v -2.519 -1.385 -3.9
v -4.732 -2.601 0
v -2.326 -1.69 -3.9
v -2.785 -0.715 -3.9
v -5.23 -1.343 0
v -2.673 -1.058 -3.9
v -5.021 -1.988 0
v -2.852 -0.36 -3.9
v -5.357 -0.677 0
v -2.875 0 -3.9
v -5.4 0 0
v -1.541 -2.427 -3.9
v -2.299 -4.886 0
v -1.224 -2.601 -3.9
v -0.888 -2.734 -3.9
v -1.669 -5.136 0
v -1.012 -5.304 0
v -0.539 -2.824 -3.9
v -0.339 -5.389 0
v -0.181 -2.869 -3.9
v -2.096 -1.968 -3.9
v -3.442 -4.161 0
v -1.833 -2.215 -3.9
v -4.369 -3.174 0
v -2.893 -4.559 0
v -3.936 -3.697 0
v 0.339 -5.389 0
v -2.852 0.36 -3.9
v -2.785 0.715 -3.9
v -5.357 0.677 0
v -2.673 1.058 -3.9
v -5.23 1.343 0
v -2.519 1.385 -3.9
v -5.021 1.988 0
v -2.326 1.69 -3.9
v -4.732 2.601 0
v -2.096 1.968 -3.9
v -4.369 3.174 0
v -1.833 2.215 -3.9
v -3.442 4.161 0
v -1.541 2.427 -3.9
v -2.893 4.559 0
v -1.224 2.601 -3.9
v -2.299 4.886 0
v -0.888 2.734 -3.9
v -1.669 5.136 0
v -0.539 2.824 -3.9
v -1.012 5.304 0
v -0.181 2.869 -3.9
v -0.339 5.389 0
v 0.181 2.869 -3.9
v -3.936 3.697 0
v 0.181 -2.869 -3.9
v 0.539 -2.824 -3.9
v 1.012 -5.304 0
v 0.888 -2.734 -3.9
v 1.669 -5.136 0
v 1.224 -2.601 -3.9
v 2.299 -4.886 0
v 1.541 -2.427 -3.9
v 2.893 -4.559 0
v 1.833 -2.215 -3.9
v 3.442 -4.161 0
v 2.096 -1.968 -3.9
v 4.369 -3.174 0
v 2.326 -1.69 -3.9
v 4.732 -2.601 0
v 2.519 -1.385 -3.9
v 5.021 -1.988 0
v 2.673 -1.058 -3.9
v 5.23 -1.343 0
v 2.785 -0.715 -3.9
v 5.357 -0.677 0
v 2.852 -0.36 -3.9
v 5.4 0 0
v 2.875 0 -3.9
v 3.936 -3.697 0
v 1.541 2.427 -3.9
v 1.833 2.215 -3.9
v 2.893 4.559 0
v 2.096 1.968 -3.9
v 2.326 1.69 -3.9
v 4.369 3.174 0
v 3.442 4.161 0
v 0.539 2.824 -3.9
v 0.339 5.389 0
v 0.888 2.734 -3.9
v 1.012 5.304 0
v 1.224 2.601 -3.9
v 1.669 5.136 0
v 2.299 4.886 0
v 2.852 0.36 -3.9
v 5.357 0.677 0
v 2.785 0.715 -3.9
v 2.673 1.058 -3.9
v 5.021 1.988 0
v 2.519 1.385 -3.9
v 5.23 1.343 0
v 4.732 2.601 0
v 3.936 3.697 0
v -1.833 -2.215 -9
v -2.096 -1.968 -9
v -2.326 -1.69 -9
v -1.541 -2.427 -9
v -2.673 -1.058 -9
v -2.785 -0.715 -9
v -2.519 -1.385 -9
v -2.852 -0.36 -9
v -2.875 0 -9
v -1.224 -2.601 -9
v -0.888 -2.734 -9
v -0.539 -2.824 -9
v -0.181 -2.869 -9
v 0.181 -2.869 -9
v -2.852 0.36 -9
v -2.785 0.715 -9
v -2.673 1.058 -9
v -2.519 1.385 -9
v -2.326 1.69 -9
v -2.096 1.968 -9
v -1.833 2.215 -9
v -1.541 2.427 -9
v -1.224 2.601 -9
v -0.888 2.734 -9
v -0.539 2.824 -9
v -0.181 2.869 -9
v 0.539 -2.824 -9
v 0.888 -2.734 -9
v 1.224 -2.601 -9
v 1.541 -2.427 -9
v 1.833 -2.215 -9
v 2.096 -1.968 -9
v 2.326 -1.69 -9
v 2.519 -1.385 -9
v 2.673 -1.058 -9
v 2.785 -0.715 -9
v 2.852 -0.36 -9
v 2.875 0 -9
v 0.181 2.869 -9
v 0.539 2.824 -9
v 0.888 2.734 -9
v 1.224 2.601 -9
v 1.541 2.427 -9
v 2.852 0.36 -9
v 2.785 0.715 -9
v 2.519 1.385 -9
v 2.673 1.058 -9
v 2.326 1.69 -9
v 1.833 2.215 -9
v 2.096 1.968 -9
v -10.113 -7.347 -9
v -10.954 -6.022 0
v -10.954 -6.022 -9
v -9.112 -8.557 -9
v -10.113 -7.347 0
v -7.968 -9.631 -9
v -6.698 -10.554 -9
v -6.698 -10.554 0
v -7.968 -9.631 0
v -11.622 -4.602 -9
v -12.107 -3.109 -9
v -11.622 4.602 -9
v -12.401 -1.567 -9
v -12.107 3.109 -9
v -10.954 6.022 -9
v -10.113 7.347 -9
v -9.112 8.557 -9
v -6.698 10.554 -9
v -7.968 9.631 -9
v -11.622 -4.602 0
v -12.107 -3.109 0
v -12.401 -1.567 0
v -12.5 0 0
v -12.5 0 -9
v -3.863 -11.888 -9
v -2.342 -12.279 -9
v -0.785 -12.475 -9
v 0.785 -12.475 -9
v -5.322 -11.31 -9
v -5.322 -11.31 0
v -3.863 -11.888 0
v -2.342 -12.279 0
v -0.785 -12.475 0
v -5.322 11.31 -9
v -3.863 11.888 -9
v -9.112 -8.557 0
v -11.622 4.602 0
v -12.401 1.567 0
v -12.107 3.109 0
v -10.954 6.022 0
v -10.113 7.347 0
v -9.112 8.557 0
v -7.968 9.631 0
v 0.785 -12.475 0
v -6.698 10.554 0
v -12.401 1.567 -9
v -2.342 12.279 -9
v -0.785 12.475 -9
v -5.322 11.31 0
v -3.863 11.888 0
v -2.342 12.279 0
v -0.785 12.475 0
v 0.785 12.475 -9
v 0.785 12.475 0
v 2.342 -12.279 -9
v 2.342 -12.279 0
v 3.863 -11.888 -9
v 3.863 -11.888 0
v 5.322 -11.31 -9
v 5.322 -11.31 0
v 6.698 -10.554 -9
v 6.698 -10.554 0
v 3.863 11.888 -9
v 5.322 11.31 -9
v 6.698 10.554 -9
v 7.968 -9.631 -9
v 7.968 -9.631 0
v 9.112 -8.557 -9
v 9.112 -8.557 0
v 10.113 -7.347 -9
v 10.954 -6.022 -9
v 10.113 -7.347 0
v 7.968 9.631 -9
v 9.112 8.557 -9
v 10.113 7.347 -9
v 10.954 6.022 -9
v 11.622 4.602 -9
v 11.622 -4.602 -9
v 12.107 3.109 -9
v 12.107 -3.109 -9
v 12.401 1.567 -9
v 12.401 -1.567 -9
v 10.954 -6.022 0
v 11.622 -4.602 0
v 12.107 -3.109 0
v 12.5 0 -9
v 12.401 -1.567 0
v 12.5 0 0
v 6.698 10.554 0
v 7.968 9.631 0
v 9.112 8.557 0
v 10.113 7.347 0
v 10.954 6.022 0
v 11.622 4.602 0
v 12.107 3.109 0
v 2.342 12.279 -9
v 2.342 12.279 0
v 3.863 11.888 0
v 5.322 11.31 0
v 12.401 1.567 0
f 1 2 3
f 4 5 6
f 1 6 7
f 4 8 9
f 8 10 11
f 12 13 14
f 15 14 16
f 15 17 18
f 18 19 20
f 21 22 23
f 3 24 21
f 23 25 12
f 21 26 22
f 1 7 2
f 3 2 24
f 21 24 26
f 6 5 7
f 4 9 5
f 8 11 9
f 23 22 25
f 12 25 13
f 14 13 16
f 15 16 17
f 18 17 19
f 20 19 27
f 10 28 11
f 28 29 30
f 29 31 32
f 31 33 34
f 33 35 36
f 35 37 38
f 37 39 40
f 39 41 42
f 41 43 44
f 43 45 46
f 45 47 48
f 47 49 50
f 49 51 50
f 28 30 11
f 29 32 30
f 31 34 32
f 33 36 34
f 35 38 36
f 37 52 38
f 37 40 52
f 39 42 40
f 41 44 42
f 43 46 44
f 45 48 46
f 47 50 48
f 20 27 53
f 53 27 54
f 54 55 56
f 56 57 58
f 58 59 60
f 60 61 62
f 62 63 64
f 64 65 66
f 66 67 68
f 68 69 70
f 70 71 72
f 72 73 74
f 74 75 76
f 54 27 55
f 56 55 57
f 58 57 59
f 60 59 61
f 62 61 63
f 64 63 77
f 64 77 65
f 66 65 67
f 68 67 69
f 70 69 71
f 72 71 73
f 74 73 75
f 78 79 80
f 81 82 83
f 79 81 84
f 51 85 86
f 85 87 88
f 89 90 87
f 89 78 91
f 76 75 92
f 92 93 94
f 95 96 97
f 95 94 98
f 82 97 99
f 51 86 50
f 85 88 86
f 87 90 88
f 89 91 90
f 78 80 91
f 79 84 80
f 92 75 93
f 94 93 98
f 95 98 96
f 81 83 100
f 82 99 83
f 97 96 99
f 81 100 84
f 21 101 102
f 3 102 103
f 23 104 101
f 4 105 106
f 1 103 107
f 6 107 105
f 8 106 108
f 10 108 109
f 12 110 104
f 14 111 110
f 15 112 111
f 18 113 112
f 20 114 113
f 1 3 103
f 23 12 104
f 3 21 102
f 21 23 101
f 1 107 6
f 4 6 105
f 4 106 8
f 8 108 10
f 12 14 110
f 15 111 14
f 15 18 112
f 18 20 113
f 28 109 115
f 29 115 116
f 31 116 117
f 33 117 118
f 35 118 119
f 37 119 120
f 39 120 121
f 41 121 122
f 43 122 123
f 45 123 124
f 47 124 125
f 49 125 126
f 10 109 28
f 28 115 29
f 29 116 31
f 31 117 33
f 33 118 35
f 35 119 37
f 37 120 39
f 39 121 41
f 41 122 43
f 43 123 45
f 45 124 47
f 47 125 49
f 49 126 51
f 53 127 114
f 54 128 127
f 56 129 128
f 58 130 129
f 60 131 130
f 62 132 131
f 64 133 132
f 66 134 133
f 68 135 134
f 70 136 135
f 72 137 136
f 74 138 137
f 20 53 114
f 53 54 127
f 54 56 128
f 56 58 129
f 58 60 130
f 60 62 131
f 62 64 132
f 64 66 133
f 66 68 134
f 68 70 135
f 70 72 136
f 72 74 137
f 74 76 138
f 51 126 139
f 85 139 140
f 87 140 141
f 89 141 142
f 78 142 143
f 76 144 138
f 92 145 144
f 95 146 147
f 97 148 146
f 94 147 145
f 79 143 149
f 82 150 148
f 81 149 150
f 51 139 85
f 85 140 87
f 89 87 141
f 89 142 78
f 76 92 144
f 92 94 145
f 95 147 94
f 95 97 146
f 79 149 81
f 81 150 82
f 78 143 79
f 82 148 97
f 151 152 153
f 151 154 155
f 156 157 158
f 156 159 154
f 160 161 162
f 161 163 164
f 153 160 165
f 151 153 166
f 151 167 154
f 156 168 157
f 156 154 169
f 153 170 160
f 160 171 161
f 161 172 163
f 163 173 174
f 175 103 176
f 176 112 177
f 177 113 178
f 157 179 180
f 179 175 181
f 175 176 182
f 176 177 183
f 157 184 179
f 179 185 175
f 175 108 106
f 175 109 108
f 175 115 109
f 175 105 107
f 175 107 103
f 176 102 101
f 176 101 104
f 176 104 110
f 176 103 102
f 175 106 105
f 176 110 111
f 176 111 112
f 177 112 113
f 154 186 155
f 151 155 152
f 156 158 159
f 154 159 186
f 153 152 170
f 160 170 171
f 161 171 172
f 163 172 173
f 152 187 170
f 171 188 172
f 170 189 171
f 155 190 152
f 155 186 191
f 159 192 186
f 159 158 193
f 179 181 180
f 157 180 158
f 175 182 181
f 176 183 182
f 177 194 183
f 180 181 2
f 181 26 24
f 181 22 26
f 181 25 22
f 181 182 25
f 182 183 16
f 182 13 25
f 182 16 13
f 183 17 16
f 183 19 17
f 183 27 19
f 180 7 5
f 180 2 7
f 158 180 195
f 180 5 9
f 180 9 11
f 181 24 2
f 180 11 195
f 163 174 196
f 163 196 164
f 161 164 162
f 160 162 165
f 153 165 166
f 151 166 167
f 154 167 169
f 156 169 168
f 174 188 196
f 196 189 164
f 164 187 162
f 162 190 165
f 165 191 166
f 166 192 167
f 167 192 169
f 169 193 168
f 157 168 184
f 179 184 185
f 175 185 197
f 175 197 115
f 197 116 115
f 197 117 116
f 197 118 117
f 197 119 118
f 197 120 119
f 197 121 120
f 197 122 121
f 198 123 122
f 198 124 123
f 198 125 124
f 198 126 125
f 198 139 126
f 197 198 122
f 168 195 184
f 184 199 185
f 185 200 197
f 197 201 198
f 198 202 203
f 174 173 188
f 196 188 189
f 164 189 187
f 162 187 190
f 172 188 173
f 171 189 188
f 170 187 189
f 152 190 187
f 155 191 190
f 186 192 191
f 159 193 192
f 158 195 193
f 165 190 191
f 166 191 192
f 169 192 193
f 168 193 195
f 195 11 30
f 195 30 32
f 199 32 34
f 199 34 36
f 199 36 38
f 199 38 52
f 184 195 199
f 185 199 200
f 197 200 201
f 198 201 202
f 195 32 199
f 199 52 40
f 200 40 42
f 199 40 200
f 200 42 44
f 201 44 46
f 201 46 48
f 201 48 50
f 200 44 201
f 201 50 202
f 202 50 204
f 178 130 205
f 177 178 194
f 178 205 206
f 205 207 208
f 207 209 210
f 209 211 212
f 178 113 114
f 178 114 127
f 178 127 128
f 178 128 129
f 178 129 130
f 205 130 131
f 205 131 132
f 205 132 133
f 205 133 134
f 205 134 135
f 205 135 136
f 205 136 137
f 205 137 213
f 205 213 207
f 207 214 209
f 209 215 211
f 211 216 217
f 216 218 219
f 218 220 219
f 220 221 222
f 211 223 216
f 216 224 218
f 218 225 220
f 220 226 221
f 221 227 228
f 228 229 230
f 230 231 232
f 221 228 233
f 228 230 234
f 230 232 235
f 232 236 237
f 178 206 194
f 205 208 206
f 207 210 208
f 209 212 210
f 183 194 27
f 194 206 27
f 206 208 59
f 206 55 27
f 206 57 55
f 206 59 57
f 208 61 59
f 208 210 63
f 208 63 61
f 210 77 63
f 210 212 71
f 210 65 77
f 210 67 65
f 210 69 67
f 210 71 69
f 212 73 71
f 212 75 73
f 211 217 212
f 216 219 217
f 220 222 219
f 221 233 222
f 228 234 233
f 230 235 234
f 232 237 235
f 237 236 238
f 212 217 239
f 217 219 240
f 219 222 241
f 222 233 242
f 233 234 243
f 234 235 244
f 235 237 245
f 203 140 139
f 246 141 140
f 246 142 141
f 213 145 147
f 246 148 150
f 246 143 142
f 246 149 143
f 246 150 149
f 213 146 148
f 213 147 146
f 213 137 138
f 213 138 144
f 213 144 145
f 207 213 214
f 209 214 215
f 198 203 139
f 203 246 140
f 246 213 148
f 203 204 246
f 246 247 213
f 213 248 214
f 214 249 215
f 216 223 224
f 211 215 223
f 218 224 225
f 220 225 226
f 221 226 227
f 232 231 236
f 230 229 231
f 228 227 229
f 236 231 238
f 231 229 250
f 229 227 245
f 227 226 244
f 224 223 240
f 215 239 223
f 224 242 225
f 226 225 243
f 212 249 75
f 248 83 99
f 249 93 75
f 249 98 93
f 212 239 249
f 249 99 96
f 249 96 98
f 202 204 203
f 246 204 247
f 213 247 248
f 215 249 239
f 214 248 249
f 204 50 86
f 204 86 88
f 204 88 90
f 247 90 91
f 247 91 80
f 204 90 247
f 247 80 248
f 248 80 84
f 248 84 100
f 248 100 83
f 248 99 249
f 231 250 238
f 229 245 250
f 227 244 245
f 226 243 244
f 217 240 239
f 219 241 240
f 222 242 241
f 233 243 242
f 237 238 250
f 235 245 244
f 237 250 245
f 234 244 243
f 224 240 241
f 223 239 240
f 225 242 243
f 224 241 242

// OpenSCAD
$fn = 50;


difference() {
	union() {
		translate(v = [0, 0, -9.0000000000]) {
			cylinder(h = 9, r = 12.5000000000);
		}
	}
	union() {
		translate(v = [0, 0, 0]) {
			rotate(a = [0, 0, 0]) {
				difference() {
					union() {
						translate(v = [0, 0, -12.0000000000]) {
							cylinder(h = 12, r = 2.6000000000);
						}
						translate(v = [0, 0, -3.9000000000]) {
							cylinder(h = 3.9000000000, r1 = 2.8750000000, r2 = 5.4000000000);
						}
						translate(v = [0, 0, -12.0000000000]) {
							cylinder(h = 12, r = 2.8750000000);
						}
						translate(v = [0, 0, -12.0000000000]) {
							cylinder(h = 12, r = 2.6000000000);
						}
					}
					union();
				}
			}
		}
	}
}
